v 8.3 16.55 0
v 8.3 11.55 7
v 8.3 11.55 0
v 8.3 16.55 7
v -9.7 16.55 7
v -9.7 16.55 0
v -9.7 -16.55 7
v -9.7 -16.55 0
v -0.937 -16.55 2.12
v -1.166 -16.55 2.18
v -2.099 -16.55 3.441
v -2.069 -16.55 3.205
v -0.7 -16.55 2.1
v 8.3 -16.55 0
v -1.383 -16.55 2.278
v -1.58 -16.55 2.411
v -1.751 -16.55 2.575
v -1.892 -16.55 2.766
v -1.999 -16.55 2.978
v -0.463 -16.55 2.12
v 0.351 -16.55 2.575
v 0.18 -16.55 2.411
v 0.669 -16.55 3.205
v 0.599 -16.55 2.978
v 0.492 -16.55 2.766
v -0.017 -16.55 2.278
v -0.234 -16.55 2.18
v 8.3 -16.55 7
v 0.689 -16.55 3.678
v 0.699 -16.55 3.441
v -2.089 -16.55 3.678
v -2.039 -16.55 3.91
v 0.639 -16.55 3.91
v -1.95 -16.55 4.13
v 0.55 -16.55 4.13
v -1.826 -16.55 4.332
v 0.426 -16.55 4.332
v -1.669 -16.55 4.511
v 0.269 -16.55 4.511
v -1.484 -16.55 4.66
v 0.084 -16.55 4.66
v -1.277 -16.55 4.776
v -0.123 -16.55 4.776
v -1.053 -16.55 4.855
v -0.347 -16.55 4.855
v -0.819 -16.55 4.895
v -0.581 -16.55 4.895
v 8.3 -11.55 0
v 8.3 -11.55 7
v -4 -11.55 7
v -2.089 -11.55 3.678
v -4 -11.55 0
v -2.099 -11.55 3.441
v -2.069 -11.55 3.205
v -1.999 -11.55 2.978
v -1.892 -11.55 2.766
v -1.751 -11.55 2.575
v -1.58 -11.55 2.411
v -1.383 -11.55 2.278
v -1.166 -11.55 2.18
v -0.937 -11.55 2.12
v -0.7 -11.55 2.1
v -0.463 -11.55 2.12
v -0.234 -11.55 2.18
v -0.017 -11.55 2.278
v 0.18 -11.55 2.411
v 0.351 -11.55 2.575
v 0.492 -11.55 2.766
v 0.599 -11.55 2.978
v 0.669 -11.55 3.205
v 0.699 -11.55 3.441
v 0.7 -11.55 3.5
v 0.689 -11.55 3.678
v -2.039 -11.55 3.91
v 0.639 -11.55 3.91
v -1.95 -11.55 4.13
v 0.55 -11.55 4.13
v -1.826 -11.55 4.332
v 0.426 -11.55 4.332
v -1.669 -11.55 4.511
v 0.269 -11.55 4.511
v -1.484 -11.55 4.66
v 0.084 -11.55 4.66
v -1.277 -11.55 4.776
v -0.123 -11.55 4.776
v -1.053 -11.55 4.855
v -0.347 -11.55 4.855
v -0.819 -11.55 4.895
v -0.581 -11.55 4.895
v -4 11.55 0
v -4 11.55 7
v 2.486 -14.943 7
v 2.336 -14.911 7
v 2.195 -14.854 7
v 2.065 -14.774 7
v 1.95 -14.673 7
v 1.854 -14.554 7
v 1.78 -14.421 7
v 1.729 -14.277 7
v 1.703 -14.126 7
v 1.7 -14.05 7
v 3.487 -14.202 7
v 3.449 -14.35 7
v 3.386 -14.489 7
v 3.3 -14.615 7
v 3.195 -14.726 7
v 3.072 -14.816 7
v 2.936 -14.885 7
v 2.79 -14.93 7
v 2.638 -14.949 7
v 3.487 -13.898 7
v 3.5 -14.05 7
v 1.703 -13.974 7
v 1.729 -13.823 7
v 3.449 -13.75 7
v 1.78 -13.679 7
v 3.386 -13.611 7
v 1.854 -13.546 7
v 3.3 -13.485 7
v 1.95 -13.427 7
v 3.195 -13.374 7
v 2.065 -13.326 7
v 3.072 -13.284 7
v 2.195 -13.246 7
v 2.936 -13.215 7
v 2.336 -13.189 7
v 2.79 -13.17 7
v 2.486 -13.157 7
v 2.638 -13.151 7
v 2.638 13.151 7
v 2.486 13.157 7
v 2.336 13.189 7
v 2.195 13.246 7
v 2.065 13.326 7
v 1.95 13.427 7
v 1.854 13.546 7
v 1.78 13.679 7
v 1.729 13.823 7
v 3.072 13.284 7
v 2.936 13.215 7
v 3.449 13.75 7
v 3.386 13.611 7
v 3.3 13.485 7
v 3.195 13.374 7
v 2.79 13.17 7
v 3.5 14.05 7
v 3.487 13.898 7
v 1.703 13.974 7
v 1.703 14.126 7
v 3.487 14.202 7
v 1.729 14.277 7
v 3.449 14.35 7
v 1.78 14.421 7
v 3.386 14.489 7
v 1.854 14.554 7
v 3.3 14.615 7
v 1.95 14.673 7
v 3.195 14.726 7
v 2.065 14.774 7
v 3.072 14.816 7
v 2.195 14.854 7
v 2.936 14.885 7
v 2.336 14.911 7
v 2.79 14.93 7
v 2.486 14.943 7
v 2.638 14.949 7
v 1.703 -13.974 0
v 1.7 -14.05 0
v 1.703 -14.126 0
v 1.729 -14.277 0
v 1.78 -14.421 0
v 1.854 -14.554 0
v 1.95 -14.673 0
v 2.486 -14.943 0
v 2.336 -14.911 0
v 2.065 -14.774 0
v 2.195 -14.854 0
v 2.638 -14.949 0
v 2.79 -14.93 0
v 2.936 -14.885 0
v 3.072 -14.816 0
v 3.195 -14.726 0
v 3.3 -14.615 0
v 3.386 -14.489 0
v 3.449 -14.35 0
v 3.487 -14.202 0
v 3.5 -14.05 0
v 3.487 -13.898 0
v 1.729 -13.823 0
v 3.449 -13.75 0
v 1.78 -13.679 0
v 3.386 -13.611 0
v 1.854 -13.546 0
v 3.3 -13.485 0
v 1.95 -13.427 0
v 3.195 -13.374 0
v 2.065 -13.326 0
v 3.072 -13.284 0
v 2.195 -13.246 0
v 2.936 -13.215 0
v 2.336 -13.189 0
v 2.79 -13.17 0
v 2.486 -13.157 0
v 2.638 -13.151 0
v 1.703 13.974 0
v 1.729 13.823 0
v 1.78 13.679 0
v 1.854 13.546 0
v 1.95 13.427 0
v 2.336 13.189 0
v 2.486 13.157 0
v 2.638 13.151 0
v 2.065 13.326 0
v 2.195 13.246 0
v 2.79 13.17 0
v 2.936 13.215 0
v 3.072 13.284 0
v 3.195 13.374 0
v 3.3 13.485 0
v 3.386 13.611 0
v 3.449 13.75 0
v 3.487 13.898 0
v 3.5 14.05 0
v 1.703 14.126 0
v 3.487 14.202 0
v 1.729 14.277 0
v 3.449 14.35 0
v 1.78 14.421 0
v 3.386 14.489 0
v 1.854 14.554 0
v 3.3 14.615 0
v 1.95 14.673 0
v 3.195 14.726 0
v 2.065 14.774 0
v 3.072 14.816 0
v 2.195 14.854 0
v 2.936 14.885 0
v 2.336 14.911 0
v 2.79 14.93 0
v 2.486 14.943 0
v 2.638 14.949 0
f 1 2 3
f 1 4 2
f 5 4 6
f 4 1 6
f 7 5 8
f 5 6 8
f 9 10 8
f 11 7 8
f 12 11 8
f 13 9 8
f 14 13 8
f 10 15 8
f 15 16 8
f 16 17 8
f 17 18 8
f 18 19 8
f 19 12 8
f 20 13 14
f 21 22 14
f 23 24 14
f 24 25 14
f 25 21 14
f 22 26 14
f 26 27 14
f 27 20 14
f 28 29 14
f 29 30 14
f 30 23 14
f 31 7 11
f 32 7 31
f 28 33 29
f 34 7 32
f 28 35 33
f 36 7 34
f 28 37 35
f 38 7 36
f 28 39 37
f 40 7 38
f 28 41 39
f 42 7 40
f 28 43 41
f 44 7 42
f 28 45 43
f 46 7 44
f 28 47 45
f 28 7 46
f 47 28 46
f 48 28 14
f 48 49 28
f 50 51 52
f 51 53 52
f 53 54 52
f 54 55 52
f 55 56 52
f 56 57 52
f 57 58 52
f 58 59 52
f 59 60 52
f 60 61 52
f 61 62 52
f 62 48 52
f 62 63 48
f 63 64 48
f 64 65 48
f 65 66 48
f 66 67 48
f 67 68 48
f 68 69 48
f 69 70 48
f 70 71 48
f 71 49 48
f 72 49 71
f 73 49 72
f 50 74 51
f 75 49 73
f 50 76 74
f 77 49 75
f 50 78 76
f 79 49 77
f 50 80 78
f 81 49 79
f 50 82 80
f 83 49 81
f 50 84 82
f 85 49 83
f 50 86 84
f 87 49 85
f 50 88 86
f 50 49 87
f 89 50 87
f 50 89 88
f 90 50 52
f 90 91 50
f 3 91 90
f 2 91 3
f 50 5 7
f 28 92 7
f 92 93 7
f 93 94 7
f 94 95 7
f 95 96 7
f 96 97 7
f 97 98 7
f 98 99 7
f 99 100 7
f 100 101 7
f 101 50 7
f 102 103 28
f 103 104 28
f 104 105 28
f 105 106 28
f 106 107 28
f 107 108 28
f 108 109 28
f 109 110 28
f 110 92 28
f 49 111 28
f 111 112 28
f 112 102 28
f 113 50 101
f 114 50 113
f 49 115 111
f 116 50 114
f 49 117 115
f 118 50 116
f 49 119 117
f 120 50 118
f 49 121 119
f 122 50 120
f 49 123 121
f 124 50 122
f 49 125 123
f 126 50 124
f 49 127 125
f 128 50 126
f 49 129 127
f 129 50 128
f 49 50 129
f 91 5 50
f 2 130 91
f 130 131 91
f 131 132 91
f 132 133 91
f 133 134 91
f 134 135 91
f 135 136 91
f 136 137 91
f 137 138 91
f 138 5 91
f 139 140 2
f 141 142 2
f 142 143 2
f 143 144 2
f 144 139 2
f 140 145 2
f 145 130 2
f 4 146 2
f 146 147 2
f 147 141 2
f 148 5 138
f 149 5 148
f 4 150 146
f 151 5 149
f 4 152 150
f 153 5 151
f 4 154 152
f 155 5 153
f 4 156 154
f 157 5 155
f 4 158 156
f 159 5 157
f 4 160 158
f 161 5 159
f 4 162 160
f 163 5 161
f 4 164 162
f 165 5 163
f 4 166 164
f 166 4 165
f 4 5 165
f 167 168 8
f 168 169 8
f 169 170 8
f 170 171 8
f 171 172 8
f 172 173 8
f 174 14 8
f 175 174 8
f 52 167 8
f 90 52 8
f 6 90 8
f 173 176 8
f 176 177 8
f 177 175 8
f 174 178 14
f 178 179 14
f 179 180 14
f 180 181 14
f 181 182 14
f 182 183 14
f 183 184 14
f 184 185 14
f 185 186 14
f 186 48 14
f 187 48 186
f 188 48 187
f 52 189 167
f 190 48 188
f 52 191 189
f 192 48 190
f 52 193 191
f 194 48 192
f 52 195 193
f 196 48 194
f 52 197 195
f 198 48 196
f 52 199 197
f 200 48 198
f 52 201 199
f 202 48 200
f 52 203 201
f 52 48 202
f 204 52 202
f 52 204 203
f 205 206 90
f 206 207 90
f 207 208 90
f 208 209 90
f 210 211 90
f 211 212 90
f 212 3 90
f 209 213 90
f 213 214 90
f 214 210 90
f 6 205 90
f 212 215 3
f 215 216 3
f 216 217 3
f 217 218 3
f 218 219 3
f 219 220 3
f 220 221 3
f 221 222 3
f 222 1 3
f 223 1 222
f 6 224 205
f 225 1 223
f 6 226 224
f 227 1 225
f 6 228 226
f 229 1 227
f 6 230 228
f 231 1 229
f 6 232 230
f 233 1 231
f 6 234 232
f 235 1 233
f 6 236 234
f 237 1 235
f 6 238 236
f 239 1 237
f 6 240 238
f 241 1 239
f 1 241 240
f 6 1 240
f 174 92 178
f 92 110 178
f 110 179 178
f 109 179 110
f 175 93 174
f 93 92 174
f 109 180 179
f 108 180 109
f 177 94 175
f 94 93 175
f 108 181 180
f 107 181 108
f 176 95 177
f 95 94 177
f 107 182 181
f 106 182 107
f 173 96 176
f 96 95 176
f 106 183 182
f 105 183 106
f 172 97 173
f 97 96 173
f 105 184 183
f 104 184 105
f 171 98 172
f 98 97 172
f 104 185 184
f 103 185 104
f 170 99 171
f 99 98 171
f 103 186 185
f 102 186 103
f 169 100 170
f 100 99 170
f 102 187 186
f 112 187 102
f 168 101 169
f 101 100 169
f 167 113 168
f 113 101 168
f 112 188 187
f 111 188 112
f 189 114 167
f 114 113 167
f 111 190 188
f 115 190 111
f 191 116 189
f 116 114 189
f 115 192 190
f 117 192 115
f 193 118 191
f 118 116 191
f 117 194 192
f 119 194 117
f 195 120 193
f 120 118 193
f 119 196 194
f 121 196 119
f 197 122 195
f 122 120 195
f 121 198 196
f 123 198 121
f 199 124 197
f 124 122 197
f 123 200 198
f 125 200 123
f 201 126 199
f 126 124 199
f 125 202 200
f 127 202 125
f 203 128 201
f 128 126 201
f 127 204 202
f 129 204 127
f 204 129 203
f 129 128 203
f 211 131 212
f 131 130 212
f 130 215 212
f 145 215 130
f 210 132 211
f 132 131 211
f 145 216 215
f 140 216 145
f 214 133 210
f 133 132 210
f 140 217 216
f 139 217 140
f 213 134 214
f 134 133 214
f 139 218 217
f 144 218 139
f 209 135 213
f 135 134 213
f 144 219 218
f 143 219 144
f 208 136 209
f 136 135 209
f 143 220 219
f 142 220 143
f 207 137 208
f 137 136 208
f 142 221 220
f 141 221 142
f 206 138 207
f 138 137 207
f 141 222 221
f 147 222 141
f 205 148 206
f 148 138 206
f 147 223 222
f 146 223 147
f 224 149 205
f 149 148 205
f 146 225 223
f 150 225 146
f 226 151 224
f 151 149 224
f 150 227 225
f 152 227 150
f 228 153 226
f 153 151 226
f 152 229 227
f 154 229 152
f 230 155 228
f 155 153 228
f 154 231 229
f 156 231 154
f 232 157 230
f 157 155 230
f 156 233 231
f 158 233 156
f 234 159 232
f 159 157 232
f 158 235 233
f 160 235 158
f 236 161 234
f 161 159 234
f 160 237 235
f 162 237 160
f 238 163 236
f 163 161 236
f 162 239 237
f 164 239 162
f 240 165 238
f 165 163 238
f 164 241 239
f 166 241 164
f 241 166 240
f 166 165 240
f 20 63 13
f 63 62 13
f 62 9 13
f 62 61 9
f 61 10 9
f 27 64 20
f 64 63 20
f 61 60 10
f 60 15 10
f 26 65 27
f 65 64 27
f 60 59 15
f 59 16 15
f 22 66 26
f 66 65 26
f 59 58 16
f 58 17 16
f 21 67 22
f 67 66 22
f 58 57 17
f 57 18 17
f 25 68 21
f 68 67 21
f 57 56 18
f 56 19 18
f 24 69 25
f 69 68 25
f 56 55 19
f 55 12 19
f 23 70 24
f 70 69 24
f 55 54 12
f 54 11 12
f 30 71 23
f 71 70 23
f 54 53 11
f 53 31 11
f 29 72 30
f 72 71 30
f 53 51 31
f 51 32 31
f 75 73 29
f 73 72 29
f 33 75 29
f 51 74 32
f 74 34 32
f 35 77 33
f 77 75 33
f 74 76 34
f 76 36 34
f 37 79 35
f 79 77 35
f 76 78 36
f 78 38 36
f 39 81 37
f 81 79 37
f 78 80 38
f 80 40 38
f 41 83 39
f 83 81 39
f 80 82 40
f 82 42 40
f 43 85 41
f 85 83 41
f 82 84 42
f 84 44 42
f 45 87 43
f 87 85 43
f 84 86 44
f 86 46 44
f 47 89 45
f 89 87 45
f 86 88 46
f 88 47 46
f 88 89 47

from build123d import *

# Parameters (mm, degrees)
ESTRUSIONE_ESTRUSIONE1_DEPTH = 7
SCHIZZO2_R                   = 0.9
TAGLIO_ESTRUSIONE1_DEPTH     = 21.420394218
TAGLIO_ESTRUSIONE2_REACH     = 37.195
SCHIZZO3_R                   = 1.4


with BuildPart() as part:
    # Schizzo1 → Estrusione-Estrusione1 (new body)
    with BuildSketch(Plane.XY):
        Polygon((8.3, 11.55), (-4, 11.55), (-4, -11.55), (8.3, -11.55), (8.3, -16.55), (-9.7, -16.55), (-9.7, 16.55), (8.3, 16.55), align=None)
    extrude(amount=ESTRUSIONE_ESTRUSIONE1_DEPTH)

    # Schizzo2 → Taglio-Estrusione1 (cut, through all)
    with BuildSketch(Plane.XY.offset(7)):
        with Locations((2.6, 14.05)):
            Circle(SCHIZZO2_R)
        with Locations(Location((2.6, -14.05, 0), (0, 0, 180))):
            Circle(SCHIZZO2_R)
    extrude(amount=-TAGLIO_ESTRUSIONE1_DEPTH, mode=Mode.SUBTRACT)

    # Schizzo3 → Taglio-Estrusione2 (cut, up to next)
    with BuildSketch(Plane.XZ.offset(16.55), mode=Mode.PRIVATE) as taglio_estrusione2_sk1:
        with Locations(Location((-0.7, 3.5, 0), (0, 0, 270))):
            Circle(SCHIZZO3_R)
    taglio_estrusione2_tool1 = extrude(taglio_estrusione2_sk1.sketch, amount=-TAGLIO_ESTRUSIONE2_REACH, mode=Mode.PRIVATE) & part.part
    add(taglio_estrusione2_tool1.solids().sort_by_distance((-0.7, -16.55, 3.5))[0], mode=Mode.SUBTRACT)


solid = part.part
